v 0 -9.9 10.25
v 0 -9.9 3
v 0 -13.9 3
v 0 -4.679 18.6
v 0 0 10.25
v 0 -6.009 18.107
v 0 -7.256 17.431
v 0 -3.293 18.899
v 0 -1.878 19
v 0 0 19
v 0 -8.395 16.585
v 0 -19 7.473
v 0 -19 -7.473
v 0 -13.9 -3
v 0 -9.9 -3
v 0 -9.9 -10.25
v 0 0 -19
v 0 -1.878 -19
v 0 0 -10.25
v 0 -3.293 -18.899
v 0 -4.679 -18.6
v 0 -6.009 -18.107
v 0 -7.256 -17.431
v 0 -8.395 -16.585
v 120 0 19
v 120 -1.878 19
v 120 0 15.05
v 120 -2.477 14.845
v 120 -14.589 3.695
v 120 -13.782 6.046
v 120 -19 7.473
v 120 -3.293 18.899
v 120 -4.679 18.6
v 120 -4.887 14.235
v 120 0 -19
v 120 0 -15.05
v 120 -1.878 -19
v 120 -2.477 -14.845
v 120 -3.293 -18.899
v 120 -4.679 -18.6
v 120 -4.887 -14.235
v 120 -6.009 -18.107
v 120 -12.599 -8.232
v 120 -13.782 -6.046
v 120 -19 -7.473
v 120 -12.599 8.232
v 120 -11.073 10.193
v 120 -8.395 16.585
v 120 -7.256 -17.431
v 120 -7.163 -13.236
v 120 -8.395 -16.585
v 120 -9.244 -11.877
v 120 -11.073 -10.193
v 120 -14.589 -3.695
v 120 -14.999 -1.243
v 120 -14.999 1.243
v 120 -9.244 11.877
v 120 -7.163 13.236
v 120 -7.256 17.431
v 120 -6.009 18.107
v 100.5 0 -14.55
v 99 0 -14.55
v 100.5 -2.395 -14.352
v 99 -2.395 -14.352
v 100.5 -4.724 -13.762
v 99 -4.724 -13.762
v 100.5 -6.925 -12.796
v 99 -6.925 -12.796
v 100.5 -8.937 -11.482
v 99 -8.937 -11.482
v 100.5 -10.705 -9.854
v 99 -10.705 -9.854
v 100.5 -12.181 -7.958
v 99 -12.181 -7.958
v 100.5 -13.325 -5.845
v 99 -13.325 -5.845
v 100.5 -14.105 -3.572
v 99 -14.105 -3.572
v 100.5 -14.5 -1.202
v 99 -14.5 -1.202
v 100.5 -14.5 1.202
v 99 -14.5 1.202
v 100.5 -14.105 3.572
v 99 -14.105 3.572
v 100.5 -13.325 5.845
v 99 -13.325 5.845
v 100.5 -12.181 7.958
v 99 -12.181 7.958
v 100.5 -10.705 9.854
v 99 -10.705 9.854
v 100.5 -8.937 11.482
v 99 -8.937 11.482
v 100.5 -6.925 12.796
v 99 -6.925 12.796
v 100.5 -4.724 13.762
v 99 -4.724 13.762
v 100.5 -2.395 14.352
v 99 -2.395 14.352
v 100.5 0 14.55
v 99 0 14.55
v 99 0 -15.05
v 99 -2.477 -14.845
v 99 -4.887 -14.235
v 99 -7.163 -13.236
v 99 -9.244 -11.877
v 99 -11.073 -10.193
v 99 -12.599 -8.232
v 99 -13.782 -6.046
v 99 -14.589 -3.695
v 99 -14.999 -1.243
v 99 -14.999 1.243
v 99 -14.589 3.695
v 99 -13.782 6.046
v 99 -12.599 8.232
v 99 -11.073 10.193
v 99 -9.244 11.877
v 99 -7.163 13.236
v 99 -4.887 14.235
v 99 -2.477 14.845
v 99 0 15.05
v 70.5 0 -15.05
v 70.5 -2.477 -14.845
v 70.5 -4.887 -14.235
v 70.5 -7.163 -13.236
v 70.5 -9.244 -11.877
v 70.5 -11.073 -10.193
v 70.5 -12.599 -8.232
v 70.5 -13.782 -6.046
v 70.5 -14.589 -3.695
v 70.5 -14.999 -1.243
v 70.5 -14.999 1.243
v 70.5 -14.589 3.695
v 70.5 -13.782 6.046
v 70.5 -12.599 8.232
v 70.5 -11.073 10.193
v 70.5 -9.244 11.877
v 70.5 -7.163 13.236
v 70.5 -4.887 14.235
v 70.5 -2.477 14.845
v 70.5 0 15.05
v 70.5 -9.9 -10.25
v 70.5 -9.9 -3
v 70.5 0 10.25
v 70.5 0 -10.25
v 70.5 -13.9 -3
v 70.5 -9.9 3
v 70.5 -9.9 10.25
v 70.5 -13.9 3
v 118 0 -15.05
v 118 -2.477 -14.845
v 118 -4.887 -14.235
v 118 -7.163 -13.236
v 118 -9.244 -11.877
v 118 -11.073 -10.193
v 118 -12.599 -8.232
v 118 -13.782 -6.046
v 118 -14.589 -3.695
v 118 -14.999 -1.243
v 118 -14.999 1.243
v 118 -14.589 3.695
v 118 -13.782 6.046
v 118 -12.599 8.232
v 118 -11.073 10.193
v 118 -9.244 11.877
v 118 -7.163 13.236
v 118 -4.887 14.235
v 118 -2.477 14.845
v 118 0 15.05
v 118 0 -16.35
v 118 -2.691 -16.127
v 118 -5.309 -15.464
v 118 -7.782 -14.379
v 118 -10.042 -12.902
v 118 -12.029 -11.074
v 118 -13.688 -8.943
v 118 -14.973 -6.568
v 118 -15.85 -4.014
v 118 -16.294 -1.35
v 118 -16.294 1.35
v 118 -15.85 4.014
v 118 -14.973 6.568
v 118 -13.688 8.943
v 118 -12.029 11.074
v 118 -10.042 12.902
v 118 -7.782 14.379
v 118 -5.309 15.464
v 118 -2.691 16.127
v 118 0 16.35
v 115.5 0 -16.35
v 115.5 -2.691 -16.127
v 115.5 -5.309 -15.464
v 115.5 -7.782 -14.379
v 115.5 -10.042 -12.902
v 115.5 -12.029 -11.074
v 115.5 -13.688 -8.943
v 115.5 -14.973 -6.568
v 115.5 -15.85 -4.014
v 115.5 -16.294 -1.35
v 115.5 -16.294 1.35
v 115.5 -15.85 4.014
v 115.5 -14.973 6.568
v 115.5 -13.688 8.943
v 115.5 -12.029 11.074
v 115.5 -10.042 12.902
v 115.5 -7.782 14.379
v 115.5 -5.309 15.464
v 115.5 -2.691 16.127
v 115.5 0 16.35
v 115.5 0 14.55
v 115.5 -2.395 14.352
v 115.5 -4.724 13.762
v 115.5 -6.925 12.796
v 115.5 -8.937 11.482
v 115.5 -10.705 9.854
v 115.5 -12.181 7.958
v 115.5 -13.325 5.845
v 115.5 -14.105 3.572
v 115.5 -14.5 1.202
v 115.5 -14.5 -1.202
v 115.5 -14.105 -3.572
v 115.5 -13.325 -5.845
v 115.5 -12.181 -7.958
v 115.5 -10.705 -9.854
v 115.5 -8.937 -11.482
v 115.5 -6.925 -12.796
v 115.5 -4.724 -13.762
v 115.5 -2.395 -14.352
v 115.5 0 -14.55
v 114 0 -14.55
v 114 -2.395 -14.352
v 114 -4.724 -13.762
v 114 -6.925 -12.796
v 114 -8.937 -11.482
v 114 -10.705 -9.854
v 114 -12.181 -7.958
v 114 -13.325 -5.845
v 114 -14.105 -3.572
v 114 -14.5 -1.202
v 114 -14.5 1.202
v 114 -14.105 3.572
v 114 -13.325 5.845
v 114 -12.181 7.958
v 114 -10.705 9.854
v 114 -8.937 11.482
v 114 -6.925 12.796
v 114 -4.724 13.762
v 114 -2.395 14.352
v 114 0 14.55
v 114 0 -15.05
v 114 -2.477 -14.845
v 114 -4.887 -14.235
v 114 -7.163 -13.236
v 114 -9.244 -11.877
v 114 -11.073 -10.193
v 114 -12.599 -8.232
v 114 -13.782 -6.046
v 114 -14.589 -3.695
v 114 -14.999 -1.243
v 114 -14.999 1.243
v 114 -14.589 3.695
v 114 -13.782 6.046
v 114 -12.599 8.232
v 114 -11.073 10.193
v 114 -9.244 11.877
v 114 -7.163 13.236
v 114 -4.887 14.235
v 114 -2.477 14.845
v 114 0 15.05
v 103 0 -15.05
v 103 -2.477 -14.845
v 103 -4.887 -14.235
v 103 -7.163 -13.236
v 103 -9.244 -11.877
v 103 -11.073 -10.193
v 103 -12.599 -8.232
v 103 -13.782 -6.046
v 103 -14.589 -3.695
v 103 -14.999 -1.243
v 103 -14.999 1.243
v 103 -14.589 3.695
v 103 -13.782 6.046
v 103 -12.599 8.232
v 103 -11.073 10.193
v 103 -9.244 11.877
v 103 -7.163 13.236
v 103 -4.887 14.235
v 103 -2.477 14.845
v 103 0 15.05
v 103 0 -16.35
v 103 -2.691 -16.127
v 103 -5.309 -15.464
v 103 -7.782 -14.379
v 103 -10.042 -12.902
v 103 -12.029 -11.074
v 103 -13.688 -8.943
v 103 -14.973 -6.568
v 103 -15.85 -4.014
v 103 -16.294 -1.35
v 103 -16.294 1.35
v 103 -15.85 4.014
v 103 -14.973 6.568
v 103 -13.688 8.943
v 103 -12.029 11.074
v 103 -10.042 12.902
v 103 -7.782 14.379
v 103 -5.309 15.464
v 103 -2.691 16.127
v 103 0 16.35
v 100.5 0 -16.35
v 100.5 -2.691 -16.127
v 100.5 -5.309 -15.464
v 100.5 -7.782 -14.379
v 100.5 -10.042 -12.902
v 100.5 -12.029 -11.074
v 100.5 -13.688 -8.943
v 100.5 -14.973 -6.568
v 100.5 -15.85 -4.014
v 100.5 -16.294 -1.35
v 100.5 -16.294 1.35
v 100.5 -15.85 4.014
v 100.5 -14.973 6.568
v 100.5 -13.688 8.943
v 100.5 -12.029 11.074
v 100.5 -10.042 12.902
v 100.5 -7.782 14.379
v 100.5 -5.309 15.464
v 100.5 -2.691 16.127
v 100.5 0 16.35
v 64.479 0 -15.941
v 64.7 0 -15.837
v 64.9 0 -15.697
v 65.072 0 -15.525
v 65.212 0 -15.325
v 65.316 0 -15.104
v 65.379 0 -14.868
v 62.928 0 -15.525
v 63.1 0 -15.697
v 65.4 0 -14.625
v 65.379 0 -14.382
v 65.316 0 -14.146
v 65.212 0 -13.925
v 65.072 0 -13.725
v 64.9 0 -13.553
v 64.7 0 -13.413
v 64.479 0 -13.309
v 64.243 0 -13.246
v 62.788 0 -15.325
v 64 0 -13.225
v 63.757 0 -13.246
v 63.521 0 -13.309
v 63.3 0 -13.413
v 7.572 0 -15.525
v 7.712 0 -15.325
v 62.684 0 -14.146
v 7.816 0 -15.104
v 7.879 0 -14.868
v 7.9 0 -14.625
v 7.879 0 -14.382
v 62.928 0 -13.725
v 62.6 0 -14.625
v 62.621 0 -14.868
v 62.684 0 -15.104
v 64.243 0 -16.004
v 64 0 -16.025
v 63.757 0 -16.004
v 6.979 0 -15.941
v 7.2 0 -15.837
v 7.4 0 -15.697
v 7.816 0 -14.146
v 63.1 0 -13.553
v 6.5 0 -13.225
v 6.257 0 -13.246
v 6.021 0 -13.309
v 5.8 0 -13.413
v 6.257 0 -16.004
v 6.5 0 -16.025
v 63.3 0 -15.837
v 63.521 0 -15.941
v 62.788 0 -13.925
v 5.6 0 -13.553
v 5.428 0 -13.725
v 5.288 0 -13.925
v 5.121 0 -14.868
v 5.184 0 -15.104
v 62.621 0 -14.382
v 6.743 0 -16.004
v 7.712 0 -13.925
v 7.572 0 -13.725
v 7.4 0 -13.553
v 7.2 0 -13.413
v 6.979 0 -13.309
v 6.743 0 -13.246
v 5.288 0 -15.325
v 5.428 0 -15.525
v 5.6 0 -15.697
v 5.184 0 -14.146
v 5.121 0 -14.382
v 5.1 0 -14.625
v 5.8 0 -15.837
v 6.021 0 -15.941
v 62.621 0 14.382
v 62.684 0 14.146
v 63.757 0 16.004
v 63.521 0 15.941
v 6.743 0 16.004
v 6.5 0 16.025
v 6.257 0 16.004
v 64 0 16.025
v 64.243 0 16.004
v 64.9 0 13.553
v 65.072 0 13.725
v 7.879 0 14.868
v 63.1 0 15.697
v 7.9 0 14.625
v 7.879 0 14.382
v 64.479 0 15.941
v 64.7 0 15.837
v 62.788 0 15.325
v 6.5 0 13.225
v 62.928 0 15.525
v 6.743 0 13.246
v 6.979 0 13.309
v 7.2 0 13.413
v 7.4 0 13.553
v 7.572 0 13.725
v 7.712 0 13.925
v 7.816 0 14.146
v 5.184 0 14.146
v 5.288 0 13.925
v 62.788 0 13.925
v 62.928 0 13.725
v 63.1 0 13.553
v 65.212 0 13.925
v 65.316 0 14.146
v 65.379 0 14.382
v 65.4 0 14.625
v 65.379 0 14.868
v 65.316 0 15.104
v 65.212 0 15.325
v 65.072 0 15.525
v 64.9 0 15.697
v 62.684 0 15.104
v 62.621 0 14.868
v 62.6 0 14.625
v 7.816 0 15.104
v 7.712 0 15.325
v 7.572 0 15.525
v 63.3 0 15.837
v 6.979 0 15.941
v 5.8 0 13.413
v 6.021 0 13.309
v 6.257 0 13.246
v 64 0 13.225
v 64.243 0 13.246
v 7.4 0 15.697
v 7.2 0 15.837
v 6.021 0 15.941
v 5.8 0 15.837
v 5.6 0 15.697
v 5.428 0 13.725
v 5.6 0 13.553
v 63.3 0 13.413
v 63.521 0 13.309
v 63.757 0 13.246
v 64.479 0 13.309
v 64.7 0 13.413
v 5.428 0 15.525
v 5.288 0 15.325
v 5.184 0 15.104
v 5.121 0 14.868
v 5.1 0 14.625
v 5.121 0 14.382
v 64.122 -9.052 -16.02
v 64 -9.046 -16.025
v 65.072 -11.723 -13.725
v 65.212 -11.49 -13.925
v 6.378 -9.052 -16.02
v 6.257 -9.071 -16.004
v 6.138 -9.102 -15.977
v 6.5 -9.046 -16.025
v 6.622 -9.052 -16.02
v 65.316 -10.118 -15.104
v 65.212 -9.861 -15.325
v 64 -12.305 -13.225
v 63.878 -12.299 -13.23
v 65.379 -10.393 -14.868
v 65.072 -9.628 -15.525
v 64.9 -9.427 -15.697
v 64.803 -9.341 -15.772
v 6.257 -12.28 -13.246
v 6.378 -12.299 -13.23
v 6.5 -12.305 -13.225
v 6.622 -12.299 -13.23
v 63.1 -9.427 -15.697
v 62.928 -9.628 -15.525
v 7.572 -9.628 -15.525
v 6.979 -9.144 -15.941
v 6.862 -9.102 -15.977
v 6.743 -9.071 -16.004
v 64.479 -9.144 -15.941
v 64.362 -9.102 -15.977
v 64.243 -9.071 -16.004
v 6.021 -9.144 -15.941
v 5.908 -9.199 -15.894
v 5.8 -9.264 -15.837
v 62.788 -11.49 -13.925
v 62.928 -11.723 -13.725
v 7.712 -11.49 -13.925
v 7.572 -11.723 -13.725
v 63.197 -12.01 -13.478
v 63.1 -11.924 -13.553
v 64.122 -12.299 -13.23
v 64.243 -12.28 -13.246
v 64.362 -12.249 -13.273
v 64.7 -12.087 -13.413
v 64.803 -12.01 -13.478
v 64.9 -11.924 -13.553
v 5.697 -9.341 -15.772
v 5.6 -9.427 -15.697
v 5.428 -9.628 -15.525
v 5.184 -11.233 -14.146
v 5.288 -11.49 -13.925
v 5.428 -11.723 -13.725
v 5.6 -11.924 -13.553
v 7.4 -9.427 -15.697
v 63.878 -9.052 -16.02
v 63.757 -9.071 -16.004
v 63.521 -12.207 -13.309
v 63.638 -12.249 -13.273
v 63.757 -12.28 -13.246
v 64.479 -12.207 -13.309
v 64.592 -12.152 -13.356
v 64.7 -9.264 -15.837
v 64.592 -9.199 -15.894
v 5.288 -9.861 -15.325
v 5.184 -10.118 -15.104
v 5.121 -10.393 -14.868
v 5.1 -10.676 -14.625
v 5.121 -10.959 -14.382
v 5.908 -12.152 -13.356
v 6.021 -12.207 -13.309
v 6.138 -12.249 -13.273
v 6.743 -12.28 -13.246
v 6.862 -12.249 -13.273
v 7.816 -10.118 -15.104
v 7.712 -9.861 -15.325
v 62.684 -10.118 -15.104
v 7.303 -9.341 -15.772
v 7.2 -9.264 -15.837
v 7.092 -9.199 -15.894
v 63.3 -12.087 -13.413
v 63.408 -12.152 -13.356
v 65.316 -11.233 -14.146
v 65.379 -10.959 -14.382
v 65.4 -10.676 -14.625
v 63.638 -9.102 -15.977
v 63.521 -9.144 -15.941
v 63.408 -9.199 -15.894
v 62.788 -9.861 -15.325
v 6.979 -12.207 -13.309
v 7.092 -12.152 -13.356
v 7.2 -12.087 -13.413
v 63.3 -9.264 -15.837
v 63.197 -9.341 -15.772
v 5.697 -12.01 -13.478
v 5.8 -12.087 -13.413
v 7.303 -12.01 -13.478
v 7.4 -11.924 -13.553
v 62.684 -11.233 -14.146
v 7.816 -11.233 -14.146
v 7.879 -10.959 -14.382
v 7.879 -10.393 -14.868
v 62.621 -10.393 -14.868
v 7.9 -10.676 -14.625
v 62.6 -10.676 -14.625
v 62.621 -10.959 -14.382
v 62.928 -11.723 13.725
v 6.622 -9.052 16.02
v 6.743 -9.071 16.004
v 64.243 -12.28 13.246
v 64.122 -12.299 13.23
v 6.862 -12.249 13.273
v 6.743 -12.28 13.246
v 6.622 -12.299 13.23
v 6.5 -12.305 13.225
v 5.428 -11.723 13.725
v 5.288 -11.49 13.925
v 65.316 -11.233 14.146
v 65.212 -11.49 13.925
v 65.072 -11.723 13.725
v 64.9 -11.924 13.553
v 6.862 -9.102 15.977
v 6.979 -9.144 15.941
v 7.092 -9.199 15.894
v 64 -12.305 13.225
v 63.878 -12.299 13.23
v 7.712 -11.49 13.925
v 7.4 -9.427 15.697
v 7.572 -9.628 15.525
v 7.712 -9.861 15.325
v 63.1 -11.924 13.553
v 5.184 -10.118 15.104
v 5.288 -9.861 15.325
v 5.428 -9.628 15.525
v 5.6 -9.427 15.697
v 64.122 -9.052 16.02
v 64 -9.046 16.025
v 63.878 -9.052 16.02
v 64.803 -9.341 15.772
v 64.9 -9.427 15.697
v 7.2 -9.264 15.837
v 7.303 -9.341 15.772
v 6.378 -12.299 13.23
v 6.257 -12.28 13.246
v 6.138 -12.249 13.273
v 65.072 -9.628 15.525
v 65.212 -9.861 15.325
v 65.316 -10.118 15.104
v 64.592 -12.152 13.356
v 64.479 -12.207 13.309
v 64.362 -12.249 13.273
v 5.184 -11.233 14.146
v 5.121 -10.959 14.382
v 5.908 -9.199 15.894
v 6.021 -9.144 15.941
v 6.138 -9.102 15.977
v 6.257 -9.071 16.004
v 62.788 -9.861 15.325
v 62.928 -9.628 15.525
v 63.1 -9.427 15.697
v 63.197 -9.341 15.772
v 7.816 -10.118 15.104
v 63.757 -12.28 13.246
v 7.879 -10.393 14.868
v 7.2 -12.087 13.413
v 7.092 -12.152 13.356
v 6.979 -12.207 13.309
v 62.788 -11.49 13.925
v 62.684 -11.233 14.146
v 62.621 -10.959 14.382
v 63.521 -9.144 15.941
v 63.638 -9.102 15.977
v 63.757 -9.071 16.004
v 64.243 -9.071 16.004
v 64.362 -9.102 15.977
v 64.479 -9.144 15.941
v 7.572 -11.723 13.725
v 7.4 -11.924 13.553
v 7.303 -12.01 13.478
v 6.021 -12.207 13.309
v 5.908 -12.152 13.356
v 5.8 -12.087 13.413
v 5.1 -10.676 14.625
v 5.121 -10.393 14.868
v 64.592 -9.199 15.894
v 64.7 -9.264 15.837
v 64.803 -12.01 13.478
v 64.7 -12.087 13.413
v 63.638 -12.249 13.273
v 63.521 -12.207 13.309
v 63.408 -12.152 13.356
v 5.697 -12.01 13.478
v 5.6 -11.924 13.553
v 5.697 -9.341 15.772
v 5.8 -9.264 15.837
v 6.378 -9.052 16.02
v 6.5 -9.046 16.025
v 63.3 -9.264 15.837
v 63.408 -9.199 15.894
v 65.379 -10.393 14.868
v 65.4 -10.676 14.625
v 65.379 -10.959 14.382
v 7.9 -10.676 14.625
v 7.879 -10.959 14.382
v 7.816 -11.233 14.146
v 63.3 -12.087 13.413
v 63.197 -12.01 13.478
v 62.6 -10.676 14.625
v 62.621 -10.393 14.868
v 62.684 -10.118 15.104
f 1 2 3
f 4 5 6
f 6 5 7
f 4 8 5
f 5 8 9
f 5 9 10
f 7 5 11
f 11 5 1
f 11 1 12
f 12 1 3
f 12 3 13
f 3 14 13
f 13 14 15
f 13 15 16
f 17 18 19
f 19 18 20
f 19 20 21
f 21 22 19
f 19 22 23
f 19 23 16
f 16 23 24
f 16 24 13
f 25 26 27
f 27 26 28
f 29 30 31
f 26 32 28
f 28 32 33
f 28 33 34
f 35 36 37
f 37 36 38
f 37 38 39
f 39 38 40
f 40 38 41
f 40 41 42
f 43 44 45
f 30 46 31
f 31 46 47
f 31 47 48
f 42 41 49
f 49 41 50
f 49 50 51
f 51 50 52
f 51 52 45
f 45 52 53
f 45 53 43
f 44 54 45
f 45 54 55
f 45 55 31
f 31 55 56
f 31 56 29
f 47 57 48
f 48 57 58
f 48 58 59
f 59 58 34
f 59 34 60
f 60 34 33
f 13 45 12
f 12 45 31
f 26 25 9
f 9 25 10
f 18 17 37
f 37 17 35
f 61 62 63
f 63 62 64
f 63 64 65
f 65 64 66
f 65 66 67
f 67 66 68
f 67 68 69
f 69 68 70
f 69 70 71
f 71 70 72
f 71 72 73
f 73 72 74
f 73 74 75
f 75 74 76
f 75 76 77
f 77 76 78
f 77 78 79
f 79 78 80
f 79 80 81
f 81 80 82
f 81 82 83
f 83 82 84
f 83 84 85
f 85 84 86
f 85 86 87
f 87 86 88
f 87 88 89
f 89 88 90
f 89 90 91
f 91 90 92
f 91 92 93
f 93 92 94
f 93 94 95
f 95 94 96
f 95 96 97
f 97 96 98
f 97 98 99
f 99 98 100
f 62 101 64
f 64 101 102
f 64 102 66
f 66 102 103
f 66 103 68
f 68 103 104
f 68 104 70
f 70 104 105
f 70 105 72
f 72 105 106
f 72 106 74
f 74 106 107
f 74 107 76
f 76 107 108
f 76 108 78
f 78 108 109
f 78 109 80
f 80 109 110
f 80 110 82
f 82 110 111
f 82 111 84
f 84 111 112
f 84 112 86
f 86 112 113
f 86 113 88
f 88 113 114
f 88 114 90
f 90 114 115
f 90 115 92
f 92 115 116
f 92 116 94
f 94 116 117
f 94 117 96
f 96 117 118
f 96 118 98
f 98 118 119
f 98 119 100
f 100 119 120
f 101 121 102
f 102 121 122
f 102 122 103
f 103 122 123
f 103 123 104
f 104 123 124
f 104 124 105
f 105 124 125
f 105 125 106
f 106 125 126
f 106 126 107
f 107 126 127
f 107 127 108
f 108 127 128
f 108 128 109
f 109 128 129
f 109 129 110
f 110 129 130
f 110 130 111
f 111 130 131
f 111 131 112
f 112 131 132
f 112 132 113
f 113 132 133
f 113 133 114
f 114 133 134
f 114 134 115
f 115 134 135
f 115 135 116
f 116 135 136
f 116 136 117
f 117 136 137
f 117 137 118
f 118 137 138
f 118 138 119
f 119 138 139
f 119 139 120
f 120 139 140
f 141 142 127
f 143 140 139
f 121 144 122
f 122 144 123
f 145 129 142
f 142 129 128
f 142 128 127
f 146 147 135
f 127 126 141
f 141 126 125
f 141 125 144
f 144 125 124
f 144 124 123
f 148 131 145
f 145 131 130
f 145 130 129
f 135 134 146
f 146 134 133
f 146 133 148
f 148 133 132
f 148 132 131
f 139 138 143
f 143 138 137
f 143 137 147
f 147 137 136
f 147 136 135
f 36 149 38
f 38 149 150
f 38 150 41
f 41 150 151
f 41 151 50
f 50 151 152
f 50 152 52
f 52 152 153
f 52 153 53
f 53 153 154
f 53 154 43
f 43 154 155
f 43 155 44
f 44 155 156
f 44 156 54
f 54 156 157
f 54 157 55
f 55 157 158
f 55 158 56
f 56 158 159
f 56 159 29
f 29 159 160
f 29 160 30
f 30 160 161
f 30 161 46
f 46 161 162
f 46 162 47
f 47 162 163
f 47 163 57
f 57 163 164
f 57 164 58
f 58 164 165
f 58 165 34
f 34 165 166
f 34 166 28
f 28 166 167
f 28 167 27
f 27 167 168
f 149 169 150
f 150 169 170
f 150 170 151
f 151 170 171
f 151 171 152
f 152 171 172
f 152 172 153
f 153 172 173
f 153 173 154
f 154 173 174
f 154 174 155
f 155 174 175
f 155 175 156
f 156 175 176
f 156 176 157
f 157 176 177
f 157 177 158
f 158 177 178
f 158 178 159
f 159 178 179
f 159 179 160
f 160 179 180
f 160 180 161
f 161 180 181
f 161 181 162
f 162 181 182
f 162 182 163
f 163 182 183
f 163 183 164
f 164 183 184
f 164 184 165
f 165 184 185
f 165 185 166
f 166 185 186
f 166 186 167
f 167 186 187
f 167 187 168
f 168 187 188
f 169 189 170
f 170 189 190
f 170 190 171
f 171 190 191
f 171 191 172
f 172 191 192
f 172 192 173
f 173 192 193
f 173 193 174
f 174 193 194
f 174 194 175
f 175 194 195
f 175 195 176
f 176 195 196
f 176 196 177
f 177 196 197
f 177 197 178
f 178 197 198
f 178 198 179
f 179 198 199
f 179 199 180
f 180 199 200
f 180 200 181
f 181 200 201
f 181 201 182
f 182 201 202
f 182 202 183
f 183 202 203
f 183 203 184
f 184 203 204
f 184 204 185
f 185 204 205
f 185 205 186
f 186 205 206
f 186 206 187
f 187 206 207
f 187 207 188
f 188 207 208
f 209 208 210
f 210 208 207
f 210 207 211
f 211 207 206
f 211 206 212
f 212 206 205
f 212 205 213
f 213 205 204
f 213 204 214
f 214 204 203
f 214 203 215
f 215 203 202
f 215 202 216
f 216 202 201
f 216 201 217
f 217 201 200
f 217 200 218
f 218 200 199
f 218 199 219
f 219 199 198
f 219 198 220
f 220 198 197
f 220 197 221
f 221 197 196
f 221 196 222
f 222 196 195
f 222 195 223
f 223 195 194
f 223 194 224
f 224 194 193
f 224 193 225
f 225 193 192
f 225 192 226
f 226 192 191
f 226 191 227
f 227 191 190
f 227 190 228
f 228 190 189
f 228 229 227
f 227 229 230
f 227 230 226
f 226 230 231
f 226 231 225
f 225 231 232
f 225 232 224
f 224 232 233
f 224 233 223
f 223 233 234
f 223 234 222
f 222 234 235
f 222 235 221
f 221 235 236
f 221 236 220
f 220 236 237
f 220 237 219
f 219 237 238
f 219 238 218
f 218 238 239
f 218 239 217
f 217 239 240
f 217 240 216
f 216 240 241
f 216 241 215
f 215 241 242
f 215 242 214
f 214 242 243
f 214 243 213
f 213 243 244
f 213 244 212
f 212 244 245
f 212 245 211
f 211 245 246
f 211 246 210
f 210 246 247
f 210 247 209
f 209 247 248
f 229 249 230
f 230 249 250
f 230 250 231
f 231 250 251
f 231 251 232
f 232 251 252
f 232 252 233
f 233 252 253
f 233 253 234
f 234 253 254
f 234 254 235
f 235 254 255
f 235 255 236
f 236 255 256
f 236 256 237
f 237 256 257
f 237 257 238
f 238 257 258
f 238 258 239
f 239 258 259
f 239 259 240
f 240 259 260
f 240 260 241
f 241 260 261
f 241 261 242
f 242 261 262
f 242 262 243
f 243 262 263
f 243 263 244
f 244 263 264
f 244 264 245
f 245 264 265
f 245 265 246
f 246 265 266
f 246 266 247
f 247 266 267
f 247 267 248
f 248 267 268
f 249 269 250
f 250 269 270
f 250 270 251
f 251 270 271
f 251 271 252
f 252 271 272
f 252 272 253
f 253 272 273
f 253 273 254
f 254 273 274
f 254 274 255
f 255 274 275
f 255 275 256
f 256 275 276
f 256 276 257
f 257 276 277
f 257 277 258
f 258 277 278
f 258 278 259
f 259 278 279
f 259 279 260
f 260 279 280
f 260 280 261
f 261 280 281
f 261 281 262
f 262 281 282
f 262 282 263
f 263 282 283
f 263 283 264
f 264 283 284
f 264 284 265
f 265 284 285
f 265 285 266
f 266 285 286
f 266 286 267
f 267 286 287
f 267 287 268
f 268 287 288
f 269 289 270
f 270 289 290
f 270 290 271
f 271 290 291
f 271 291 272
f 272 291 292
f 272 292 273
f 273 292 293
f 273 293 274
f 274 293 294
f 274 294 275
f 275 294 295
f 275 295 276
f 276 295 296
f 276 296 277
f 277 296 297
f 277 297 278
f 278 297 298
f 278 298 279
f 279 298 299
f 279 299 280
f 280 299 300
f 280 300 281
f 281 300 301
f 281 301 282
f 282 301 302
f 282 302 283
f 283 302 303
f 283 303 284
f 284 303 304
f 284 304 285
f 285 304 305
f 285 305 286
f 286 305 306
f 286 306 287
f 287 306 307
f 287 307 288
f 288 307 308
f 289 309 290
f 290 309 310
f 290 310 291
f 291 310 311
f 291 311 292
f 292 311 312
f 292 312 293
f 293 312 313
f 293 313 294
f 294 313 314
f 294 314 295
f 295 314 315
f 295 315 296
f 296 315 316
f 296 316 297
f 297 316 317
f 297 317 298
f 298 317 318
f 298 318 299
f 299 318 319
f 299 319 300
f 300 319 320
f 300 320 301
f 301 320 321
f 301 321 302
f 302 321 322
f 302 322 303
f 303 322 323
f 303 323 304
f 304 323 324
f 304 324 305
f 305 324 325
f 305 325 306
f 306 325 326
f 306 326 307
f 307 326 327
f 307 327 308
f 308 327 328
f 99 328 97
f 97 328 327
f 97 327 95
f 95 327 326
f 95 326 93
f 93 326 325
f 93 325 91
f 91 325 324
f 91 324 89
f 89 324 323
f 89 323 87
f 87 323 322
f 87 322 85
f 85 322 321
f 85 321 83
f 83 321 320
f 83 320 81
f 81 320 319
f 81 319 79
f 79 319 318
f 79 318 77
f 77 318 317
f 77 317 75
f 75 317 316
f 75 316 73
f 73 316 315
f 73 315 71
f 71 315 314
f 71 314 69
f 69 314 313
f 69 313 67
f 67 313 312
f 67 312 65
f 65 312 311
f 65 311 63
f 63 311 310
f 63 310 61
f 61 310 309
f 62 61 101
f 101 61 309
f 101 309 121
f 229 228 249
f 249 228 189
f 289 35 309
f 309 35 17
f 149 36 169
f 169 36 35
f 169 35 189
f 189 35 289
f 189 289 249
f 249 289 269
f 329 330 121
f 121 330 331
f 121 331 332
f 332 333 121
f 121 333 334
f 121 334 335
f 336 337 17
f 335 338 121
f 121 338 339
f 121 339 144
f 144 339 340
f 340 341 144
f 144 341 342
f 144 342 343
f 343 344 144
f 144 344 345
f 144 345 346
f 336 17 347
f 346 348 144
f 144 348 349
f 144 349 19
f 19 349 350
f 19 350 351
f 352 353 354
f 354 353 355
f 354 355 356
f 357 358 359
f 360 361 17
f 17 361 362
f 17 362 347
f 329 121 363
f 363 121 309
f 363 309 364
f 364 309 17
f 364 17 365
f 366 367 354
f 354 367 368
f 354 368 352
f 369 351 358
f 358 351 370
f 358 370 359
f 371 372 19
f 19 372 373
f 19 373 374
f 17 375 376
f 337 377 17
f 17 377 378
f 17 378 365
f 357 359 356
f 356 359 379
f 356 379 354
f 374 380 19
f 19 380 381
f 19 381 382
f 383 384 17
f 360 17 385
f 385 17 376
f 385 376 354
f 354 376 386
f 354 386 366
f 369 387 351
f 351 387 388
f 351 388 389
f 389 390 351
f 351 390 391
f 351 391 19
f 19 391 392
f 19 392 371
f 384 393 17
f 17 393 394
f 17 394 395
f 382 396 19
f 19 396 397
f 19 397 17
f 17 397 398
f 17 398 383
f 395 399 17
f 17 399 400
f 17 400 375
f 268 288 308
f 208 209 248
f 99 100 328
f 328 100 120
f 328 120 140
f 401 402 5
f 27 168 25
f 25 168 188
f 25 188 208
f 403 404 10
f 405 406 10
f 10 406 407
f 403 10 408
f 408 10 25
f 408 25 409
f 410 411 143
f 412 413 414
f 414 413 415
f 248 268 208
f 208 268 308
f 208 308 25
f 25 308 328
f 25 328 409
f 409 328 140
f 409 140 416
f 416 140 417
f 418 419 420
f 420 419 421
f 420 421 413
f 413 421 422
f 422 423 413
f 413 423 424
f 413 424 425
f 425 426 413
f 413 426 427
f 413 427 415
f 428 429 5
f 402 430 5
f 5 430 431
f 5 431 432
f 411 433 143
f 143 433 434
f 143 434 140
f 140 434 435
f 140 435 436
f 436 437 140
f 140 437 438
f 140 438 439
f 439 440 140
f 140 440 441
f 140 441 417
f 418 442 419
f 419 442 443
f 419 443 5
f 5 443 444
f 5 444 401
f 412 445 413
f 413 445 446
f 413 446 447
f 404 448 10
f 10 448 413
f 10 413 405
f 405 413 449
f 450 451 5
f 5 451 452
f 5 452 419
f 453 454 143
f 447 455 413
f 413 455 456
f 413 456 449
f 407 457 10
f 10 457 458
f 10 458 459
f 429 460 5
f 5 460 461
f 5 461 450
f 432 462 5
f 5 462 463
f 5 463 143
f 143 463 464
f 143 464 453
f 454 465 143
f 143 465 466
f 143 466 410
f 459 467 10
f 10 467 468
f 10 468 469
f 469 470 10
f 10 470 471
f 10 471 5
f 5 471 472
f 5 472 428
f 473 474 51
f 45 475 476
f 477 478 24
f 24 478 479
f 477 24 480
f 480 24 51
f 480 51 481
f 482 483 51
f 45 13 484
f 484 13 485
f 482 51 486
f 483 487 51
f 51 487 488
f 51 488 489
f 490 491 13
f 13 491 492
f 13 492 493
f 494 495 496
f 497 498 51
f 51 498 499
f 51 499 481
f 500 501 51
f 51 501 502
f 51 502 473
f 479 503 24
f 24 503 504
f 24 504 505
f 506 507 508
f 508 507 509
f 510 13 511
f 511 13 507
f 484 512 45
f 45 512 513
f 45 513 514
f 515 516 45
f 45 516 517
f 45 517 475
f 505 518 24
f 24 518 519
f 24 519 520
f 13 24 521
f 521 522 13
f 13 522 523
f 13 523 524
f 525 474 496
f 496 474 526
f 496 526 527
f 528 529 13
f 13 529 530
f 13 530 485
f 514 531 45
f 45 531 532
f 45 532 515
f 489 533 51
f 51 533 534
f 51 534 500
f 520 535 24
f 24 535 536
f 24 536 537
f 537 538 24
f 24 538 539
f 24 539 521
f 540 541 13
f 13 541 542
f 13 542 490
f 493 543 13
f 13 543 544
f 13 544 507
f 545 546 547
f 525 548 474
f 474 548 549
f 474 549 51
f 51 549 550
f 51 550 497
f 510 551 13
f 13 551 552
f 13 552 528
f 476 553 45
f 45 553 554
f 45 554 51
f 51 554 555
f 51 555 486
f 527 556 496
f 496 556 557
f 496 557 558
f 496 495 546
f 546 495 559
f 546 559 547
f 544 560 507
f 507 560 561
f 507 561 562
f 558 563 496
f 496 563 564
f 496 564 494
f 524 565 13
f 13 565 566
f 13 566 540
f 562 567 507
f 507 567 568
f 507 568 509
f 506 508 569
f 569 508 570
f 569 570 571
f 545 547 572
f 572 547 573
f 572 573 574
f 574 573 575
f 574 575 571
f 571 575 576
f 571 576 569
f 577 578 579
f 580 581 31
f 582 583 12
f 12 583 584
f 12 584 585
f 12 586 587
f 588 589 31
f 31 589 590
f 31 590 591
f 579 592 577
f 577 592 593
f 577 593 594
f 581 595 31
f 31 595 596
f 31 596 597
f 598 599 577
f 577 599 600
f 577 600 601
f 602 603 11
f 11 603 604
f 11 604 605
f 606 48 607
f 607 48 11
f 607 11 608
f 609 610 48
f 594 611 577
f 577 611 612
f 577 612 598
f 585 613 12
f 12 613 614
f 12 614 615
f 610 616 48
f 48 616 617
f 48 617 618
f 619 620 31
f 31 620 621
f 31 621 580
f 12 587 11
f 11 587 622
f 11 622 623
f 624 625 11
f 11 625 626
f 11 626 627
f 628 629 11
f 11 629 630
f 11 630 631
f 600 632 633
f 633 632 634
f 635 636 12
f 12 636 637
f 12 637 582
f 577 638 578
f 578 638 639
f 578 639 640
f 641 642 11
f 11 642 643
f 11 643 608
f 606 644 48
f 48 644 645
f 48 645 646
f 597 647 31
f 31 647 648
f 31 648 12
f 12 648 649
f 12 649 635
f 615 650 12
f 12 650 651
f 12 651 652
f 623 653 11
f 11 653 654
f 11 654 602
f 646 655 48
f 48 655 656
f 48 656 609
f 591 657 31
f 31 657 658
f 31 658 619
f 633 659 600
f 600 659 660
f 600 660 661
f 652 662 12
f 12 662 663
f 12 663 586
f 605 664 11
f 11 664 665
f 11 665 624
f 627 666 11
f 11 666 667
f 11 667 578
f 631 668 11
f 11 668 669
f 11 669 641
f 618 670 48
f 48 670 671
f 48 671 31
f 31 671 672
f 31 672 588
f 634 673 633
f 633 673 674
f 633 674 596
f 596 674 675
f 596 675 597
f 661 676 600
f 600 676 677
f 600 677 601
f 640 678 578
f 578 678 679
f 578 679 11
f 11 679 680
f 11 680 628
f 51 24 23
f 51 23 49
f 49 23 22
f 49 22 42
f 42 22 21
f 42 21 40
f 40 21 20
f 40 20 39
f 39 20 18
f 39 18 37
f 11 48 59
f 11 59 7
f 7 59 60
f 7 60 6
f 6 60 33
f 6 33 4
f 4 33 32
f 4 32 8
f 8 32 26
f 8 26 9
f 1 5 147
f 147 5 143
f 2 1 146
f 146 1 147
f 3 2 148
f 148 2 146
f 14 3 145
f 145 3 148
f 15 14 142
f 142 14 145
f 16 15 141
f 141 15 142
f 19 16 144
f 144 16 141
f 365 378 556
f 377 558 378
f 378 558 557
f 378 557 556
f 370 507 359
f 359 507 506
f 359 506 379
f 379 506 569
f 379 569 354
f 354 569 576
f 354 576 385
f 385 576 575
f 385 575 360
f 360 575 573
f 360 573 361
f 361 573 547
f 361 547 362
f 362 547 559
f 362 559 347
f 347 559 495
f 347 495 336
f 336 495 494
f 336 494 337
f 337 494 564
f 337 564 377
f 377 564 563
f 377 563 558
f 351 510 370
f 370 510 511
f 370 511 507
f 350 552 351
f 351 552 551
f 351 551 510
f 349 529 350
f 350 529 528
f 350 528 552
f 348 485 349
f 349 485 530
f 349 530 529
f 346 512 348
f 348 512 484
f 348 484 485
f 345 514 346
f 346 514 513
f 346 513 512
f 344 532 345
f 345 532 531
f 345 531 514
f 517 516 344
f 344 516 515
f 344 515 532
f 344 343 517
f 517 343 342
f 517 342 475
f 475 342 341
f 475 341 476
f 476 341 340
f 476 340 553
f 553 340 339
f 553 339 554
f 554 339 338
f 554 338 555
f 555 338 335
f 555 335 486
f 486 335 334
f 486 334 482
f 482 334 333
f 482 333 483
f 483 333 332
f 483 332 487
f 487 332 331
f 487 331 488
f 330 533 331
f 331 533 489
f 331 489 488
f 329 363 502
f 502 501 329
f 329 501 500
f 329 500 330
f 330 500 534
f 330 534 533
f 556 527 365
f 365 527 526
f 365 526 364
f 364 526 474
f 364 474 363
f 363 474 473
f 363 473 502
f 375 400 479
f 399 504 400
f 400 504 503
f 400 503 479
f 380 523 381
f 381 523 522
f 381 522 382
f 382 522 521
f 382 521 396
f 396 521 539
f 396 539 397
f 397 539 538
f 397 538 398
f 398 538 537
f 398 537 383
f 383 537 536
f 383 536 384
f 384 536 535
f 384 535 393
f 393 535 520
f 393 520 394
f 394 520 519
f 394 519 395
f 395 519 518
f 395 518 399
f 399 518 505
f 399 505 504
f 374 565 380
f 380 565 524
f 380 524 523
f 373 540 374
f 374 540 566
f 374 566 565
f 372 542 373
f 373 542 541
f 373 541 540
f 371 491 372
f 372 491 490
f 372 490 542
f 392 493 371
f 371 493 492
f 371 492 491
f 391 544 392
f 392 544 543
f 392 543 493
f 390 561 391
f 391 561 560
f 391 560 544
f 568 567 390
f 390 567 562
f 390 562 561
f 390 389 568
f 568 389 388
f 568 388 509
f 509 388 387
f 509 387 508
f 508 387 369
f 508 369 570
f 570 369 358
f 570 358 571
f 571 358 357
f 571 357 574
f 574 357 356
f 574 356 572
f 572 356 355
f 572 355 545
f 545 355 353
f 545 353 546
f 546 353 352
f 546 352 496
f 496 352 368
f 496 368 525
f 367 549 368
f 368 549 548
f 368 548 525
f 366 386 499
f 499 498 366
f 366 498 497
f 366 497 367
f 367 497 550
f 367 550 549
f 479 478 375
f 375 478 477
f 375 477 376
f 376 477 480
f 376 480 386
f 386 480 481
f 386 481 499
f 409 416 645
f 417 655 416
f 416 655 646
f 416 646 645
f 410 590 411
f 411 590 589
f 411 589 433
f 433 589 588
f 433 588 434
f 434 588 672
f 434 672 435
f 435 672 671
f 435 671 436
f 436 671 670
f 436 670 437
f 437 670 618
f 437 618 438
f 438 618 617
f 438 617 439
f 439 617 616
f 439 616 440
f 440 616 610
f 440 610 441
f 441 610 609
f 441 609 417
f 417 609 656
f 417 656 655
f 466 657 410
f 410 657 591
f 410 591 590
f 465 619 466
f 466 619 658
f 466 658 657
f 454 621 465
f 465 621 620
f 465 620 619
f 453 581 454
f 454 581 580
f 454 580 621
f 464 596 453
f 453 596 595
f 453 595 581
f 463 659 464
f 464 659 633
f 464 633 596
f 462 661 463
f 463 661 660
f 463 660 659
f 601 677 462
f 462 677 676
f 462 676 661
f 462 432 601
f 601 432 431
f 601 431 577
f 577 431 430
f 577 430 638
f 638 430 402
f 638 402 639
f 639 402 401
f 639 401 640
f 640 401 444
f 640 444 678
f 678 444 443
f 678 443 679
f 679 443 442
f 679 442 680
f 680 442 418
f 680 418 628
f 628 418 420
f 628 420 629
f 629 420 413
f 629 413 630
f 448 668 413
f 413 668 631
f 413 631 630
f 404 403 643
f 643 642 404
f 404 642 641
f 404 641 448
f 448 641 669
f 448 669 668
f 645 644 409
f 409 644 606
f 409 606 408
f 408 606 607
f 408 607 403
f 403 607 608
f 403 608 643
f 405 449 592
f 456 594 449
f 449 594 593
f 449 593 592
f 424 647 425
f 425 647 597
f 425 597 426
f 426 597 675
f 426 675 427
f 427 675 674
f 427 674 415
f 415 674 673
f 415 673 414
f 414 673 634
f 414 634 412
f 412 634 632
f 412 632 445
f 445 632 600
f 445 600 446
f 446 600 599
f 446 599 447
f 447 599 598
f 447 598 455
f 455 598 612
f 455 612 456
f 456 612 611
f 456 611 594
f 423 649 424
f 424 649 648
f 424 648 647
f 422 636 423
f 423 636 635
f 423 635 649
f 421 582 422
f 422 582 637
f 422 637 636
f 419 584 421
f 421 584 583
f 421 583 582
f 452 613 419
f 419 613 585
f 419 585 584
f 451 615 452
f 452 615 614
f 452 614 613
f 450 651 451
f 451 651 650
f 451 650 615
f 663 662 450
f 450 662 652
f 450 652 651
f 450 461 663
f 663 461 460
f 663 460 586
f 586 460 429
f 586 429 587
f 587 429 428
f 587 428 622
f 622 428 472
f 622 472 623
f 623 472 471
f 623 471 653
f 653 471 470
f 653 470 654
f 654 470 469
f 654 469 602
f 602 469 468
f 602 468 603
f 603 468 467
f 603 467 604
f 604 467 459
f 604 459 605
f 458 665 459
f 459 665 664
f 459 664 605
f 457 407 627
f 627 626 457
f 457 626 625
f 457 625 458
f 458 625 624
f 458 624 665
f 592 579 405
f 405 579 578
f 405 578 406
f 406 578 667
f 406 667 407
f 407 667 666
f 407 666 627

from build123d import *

# Parameters (mm, degrees)
R_VOLUTION1_ANGLE       = 180
ENL_V_START             = -19
ESQUISSE2_W             = 120
ESQUISSE2_H             = 50.1
ENL_V_MAT_EXTRU_1_DEPTH = 10
ESQUISSE3_W             = 146.438377439
ESQUISSE3_H             = 50.311635948
ENL_V_MAT_EXTRU_2_DEPTH = 10
ESQUISSE4_W             = 156.060048108
ESQUISSE4_H             = 43.154210134
ENL_V_MAT_EXTRU_3_DEPTH = 7
CONG_1_R                = 10
ENL_V_MAT_EXTRU_4_DEPTH = 121
ESQUISSE6_R             = 1.4
ENL_V_MAT_EXTRU_5_DEPTH = 20


with BuildPart() as part:
    # Esquisse1 → Révolution1 (revolve, symmetric)
    with BuildSketch(Plane.XY) as r_volution1_sk:
        Polygon((70.5, -15.05), (99, -15.05), (99, -14.55), (100.5, -14.55), (100.5, -15.05), (100.5, -16.35), (103, -16.35), (103, -15.05), (114, -15.05), (114, -14.55), (115.5, -14.55), (115.5, -15.05), (115.5, -16.35), (118, -16.35), (118, -15.05), (120, -15.05), (120, -25.05), (0, -25.05), (0, -15.05), (0, -9.55), (70.5, -9.55), align=None)
    revolve(axis=Axis((0, 0, 0), (1, 0, 0)), revolution_arc=R_VOLUTION1_ANGLE / 2)
    revolve(r_volution1_sk.sketch, axis=Axis((0, 0, 0), (-1, 0, 0)), revolution_arc=R_VOLUTION1_ANGLE / 2)

    # Esquisse2 → Enlèv. mat.-Extru.1 (cut)
    with BuildSketch(Plane(origin=(0, 0, 0), x_dir=(1, 0, 0), z_dir=(0, 1, 0)).offset(ENL_V_START)):
        with Locations((60, 0)):
            Rectangle(ESQUISSE2_W, ESQUISSE2_H)
    extrude(amount=-ENL_V_MAT_EXTRU_1_DEPTH, mode=Mode.SUBTRACT)

    # Esquisse3 → Enlèv. mat.-Extru.2 (cut)
    with BuildSketch(Plane.XY.offset(ENL_V_START)):
        with Locations((56.62202011, -13.21090671)):
            Rectangle(ESQUISSE3_W, ESQUISSE3_H)
    enl_v_mat_extru_2 = extrude(amount=-ENL_V_MAT_EXTRU_2_DEPTH, mode=Mode.SUBTRACT)

    # Esquisse4 → Enlèv. mat.-Extru.3 (cut)
    with BuildSketch(Plane(origin=(0, -16.324904288, -19), x_dir=(-1, 0, 0), z_dir=(0, -0.651692786, -0.758483034))):
        with Locations((-53.986796091, -2.160595236)):
            Rectangle(ESQUISSE4_W, ESQUISSE4_H)
    enl_v_mat_extru_3 = extrude(amount=-ENL_V_MAT_EXTRU_3_DEPTH, mode=Mode.SUBTRACT)

    # Symétrie1: Enlèv. mat.-Extru.2, Enlèv. mat.-Extru.3 across plane
    add(enl_v_mat_extru_2.mirror(Plane.XY), mode=Mode.SUBTRACT)
    add(enl_v_mat_extru_3.mirror(Plane.XY), mode=Mode.SUBTRACT)

    # Congé1
    cong_1_edges = [part.edges().sort_by_distance(p)[0] for p in [
        (60, -5.583646825, 19),
        (60, -5.583646825, -19),
    ]]
    fillet(cong_1_edges, radius=CONG_1_R)

    # Esquisse5 → Enlèv. mat.-Extru.4 (cut, through all)
    with BuildSketch(Plane.ZY):
        Polygon((10.25, 0), (-10.25, 0), (-10.25, -9.9), (-3, -9.9), (-3, -13.9), (3, -13.9), (3, -9.9), (10.25, -9.9), align=None)
    extrude(amount=-ENL_V_MAT_EXTRU_4_DEPTH, mode=Mode.SUBTRACT)

    # Esquisse6 → Enlèv. mat.-Extru.5 (cut, through all)
    with BuildSketch(Plane(origin=(0, 0, 0), x_dir=(1, 0, 0), z_dir=(0, 1, 0))):
        with Locations((6.5, 14.625)):
            Circle(ESQUISSE6_R)
        with Locations((64, 14.625)):
            Circle(ESQUISSE6_R)
    enl_v_mat_extru_5 = extrude(amount=-ENL_V_MAT_EXTRU_5_DEPTH, mode=Mode.SUBTRACT)

    # Symétrie2: Enlèv. mat.-Extru.5 across plane
    add(enl_v_mat_extru_5.mirror(Plane.XY), mode=Mode.SUBTRACT)


solid = part.part
